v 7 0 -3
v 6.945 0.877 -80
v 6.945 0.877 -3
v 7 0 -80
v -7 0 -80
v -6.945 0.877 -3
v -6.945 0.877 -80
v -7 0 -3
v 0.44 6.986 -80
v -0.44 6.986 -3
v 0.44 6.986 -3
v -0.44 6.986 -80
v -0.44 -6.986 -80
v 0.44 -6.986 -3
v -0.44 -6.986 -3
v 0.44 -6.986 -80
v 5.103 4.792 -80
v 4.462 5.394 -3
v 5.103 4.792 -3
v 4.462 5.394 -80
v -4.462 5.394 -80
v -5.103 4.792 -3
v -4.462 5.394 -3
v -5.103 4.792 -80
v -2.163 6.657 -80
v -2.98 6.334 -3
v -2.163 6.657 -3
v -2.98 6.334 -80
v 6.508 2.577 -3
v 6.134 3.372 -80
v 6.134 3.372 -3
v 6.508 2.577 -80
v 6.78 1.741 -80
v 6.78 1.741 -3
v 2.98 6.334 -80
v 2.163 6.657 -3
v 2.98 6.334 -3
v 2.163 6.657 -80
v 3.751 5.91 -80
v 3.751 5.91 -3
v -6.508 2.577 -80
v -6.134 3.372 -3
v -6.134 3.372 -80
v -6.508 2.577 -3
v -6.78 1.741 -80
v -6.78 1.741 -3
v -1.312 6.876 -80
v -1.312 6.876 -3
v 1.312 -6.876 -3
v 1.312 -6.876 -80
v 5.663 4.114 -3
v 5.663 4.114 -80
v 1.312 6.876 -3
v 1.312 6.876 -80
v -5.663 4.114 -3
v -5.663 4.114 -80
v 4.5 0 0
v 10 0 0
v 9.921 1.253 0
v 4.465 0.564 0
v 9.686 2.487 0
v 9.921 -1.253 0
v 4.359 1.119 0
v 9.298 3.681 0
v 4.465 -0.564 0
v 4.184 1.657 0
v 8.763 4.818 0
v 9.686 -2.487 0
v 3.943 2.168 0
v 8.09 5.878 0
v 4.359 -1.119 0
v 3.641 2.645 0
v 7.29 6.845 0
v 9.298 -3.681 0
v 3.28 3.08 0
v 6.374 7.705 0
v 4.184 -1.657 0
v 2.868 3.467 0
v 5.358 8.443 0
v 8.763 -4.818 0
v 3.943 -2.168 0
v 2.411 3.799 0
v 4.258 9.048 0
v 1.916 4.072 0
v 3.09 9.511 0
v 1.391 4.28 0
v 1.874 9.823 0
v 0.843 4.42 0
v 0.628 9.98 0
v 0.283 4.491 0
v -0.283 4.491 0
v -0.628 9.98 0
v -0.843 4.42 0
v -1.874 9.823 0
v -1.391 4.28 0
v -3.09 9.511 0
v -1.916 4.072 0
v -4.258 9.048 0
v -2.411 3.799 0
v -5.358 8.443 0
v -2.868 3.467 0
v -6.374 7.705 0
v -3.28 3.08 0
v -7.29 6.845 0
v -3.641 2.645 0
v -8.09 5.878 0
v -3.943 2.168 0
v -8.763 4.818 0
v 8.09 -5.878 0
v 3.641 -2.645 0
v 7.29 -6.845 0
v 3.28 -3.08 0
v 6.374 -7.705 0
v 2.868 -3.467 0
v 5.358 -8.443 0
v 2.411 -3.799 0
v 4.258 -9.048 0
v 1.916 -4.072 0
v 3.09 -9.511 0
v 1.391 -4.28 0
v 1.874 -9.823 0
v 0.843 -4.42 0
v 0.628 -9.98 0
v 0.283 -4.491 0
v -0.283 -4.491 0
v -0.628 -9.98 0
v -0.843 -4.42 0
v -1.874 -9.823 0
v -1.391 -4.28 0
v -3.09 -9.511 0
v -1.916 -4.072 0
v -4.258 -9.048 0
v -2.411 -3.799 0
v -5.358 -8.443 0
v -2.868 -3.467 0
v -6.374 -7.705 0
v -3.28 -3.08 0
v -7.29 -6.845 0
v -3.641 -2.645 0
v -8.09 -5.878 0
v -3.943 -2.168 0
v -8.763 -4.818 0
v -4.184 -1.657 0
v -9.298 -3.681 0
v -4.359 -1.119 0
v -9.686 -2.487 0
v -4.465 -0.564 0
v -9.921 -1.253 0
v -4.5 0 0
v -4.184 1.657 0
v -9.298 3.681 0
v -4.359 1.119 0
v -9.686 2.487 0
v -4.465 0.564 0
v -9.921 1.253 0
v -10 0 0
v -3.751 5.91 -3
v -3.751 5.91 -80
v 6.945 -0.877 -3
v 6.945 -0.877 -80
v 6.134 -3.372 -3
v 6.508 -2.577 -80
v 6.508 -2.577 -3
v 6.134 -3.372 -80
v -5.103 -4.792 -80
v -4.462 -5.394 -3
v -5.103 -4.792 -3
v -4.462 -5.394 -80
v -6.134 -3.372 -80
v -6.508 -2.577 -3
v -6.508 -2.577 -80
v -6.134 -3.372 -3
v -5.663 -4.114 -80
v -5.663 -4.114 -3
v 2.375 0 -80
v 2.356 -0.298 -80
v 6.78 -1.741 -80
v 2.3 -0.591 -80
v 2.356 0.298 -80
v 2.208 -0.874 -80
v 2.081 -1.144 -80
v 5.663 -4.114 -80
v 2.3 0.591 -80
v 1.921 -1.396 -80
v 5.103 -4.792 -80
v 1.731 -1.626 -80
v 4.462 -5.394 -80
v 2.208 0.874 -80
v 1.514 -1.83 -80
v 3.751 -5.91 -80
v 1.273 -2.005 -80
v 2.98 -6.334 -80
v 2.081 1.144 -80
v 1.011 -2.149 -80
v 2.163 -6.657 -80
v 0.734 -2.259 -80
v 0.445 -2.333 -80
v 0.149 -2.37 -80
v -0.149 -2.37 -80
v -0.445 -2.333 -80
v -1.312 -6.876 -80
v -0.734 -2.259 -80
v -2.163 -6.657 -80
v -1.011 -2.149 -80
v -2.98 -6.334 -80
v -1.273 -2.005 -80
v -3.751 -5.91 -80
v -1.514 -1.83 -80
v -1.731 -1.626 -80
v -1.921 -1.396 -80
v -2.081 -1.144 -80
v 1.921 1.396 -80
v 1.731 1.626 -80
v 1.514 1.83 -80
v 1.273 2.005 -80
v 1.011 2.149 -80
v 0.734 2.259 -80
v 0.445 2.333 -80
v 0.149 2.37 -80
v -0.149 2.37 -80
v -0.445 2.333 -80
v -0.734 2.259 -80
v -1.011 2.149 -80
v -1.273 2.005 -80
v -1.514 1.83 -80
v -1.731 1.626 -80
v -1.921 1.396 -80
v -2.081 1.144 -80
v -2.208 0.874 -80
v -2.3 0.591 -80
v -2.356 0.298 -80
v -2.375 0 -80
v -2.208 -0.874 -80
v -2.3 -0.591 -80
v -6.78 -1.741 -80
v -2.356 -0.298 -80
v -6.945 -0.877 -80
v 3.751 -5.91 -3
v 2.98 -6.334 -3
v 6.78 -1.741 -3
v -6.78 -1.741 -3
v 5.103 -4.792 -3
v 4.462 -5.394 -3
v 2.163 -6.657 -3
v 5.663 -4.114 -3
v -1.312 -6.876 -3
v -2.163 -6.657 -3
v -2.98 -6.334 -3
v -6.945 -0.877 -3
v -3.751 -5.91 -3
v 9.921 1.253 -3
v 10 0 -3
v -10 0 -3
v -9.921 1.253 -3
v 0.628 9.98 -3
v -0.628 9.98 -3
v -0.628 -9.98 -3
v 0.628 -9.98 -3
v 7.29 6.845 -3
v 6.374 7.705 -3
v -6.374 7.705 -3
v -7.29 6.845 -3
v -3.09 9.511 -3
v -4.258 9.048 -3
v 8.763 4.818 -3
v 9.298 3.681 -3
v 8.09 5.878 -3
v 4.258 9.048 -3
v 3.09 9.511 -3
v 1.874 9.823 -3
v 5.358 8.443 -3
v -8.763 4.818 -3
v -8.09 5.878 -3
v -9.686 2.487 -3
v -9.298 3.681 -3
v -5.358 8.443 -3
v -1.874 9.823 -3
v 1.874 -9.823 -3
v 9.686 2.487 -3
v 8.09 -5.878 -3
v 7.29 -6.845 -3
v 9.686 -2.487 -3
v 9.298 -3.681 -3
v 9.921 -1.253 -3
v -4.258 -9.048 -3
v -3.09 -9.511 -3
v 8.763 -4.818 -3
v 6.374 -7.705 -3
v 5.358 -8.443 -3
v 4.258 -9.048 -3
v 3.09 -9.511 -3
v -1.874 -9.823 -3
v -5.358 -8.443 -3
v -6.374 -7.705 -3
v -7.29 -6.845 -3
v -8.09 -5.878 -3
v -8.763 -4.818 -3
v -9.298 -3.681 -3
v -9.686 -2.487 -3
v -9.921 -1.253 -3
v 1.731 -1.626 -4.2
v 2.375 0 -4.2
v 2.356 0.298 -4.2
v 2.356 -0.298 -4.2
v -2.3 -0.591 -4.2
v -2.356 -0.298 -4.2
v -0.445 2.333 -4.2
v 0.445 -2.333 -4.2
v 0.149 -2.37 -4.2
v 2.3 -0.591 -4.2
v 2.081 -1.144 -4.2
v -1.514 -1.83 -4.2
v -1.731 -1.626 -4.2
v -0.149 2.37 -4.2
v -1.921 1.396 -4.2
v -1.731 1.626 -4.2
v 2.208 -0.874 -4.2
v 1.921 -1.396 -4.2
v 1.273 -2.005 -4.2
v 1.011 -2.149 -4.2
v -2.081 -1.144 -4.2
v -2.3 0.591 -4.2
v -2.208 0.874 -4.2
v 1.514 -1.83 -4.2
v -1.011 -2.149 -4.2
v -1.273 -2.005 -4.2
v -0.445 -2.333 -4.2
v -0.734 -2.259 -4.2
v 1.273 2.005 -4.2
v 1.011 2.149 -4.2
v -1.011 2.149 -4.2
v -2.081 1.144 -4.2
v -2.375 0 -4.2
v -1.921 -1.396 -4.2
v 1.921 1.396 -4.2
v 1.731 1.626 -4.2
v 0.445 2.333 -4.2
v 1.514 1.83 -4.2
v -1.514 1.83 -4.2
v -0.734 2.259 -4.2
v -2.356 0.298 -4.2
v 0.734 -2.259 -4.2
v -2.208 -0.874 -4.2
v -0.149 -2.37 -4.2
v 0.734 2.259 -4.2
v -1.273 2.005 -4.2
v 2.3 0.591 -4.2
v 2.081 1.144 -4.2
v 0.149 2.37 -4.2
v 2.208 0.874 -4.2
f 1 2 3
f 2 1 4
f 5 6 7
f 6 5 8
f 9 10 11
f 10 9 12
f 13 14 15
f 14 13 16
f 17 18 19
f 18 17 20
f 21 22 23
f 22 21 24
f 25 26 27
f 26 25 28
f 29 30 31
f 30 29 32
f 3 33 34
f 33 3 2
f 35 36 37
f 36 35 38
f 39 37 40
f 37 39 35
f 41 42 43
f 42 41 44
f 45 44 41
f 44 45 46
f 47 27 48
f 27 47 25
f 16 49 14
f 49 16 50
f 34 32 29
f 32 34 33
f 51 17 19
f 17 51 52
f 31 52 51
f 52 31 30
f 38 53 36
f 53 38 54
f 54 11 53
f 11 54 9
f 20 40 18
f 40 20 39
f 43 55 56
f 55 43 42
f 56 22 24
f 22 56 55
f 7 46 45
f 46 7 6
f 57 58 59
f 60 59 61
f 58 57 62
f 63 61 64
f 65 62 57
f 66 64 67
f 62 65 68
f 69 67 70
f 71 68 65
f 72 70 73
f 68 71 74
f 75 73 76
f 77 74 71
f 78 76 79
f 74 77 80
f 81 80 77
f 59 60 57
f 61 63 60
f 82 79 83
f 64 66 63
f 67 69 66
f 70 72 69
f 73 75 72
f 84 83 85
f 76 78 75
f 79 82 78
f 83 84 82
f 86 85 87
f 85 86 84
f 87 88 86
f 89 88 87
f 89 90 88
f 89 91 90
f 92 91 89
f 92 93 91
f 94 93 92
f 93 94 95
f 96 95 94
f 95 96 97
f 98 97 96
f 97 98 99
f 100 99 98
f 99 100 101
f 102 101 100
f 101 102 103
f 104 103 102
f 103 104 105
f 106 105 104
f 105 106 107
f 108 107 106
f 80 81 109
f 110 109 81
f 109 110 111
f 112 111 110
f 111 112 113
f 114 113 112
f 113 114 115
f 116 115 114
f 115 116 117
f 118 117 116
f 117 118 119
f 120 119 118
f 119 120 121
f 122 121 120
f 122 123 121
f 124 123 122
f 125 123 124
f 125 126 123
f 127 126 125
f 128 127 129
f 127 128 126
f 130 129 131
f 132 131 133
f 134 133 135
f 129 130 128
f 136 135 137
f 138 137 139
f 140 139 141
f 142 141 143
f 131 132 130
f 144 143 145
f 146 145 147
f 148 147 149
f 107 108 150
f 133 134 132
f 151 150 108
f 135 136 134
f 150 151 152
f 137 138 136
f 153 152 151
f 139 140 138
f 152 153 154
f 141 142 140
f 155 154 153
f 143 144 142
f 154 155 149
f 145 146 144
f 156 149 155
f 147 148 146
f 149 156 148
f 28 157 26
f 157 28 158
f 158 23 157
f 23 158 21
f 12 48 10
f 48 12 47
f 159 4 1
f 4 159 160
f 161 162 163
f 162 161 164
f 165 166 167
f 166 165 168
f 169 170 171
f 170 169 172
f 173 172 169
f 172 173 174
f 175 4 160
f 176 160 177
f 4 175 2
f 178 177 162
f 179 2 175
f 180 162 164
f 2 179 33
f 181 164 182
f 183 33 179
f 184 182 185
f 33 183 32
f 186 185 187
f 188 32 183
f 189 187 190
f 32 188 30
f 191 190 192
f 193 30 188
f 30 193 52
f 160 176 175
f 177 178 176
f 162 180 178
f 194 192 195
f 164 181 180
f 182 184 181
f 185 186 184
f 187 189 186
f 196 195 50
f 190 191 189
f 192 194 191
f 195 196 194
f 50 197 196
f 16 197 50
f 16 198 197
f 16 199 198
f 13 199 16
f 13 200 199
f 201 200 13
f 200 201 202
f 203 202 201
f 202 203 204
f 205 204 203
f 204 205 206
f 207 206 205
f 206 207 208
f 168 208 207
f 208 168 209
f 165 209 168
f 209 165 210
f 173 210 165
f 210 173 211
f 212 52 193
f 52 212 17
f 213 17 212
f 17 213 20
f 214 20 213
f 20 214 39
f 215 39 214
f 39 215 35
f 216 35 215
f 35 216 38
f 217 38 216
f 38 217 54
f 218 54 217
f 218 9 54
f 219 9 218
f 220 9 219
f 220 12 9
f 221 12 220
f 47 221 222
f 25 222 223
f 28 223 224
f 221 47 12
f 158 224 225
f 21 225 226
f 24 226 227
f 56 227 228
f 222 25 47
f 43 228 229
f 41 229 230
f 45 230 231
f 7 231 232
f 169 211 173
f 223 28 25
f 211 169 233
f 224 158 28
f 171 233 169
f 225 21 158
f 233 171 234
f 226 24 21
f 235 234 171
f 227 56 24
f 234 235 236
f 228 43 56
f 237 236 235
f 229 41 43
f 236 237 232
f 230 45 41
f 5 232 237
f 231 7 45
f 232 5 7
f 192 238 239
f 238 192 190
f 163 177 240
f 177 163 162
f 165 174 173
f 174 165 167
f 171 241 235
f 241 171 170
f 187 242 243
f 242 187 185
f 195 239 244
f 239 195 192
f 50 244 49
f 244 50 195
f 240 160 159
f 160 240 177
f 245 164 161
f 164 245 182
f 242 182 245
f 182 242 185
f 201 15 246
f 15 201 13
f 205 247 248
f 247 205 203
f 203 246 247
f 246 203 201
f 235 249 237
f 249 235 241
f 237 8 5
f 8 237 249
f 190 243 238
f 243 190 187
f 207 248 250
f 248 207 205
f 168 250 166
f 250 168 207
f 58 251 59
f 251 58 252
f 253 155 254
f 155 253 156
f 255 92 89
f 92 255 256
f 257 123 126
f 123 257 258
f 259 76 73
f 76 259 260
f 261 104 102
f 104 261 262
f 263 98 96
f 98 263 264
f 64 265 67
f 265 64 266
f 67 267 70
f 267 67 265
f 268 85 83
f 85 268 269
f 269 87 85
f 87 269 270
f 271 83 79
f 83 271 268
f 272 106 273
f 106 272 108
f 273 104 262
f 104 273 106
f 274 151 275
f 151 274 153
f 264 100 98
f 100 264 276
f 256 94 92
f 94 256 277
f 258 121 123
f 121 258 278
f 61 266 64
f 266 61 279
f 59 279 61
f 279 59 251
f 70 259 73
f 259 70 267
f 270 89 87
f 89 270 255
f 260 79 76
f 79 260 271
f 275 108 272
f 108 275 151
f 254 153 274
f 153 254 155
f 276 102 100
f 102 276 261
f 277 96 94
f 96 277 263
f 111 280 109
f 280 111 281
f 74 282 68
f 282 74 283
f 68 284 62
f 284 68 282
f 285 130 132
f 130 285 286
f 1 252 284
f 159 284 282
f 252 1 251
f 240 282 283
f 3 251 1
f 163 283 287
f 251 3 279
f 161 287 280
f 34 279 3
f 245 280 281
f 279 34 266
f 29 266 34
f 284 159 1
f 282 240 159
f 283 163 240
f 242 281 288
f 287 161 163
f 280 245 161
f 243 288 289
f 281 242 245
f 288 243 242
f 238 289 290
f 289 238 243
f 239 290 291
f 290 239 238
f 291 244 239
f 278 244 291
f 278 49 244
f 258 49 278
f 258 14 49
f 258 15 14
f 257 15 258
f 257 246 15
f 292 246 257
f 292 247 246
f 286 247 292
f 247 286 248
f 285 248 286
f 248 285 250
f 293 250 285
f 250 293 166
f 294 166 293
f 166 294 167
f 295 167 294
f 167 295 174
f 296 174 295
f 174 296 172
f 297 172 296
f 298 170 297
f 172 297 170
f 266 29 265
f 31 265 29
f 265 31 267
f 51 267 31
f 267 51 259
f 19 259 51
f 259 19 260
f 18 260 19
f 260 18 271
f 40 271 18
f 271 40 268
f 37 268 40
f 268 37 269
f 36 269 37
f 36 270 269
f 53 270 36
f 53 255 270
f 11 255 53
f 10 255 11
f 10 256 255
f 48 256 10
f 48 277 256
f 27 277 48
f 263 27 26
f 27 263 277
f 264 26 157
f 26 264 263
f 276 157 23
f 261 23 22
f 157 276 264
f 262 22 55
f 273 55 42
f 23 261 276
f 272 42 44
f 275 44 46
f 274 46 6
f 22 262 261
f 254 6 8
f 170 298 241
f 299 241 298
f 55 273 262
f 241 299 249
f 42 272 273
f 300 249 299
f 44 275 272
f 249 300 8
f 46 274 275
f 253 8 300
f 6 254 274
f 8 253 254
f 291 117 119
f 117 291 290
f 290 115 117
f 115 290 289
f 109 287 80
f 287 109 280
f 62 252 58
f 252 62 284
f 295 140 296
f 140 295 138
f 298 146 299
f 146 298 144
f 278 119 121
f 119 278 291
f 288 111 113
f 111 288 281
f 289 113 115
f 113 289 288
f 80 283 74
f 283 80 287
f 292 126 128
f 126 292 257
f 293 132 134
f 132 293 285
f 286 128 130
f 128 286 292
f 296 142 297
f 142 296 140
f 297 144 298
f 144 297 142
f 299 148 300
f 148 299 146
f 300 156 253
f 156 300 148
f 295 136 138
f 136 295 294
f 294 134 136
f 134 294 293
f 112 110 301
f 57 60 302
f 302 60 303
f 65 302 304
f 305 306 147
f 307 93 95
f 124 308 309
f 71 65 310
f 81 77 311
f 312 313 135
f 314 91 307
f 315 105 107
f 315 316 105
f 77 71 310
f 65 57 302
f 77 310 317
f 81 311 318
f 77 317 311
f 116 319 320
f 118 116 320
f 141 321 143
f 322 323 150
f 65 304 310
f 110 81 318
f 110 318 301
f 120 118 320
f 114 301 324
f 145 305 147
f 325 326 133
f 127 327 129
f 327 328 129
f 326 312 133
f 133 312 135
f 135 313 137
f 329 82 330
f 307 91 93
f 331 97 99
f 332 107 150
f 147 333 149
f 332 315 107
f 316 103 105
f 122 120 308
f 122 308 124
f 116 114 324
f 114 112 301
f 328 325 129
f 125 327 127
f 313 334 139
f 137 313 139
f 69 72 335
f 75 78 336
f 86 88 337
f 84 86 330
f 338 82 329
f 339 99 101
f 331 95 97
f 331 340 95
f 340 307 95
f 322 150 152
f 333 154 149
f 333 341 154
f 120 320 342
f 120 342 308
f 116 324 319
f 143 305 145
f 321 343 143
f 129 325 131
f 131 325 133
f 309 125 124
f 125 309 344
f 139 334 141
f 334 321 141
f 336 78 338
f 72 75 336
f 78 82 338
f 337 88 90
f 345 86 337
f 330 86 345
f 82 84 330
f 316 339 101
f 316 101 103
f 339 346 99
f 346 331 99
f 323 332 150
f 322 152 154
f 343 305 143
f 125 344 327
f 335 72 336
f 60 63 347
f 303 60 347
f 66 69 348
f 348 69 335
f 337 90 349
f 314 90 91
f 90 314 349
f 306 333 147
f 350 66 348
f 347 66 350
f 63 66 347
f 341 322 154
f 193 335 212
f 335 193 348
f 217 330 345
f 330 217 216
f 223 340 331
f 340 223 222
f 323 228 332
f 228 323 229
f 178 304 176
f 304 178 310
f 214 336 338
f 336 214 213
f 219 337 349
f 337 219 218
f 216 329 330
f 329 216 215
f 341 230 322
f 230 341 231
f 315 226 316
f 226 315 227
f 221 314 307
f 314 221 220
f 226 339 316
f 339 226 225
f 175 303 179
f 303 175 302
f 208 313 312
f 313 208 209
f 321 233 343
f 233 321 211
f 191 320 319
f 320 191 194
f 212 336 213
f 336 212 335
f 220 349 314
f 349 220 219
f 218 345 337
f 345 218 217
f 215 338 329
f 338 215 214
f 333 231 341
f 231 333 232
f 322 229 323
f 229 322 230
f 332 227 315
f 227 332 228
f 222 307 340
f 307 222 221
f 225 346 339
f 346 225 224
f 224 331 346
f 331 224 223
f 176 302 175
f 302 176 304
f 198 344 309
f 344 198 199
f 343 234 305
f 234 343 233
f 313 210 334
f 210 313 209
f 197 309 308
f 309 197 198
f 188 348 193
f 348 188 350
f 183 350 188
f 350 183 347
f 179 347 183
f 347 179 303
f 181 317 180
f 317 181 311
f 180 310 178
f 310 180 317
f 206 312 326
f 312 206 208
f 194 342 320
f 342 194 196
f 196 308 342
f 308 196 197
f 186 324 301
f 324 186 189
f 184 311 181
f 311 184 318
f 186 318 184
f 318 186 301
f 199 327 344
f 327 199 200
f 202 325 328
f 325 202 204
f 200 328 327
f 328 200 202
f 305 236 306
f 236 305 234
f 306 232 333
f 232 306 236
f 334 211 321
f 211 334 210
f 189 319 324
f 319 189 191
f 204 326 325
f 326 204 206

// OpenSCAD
$fn = 50;


difference() {
	union() {
		translate(v = [0, 0, -80.0000000000]) {
			cylinder(h = 80, r = 7.0000000000);
		}
		translate(v = [0, 0, -3.0000000000]) {
			cylinder(h = 3, r = 10.0000000000);
		}
	}
	union() {
		translate(v = [0, 0, 0]) {
			rotate(a = [0, 0, 0]) {
				difference() {
					union() {
						#translate(v = [0, 0, -80.0000000000]) {
							cylinder(h = 80, r = 2.2500000000);
						}
						#translate(v = [0, 0, -4.2000000000]) {
							cylinder(h = 4.2000000000, r1 = 2.3750000000, r2 = 4.5000000000);
						}
						#translate(v = [0, 0, -80.0000000000]) {
							cylinder(h = 80, r = 2.3750000000);
						}
						#translate(v = [0, 0, -80.0000000000]) {
							cylinder(h = 80, r = 2.2500000000);
						}
					}
					union();
				}
			}
		}
	}
}
